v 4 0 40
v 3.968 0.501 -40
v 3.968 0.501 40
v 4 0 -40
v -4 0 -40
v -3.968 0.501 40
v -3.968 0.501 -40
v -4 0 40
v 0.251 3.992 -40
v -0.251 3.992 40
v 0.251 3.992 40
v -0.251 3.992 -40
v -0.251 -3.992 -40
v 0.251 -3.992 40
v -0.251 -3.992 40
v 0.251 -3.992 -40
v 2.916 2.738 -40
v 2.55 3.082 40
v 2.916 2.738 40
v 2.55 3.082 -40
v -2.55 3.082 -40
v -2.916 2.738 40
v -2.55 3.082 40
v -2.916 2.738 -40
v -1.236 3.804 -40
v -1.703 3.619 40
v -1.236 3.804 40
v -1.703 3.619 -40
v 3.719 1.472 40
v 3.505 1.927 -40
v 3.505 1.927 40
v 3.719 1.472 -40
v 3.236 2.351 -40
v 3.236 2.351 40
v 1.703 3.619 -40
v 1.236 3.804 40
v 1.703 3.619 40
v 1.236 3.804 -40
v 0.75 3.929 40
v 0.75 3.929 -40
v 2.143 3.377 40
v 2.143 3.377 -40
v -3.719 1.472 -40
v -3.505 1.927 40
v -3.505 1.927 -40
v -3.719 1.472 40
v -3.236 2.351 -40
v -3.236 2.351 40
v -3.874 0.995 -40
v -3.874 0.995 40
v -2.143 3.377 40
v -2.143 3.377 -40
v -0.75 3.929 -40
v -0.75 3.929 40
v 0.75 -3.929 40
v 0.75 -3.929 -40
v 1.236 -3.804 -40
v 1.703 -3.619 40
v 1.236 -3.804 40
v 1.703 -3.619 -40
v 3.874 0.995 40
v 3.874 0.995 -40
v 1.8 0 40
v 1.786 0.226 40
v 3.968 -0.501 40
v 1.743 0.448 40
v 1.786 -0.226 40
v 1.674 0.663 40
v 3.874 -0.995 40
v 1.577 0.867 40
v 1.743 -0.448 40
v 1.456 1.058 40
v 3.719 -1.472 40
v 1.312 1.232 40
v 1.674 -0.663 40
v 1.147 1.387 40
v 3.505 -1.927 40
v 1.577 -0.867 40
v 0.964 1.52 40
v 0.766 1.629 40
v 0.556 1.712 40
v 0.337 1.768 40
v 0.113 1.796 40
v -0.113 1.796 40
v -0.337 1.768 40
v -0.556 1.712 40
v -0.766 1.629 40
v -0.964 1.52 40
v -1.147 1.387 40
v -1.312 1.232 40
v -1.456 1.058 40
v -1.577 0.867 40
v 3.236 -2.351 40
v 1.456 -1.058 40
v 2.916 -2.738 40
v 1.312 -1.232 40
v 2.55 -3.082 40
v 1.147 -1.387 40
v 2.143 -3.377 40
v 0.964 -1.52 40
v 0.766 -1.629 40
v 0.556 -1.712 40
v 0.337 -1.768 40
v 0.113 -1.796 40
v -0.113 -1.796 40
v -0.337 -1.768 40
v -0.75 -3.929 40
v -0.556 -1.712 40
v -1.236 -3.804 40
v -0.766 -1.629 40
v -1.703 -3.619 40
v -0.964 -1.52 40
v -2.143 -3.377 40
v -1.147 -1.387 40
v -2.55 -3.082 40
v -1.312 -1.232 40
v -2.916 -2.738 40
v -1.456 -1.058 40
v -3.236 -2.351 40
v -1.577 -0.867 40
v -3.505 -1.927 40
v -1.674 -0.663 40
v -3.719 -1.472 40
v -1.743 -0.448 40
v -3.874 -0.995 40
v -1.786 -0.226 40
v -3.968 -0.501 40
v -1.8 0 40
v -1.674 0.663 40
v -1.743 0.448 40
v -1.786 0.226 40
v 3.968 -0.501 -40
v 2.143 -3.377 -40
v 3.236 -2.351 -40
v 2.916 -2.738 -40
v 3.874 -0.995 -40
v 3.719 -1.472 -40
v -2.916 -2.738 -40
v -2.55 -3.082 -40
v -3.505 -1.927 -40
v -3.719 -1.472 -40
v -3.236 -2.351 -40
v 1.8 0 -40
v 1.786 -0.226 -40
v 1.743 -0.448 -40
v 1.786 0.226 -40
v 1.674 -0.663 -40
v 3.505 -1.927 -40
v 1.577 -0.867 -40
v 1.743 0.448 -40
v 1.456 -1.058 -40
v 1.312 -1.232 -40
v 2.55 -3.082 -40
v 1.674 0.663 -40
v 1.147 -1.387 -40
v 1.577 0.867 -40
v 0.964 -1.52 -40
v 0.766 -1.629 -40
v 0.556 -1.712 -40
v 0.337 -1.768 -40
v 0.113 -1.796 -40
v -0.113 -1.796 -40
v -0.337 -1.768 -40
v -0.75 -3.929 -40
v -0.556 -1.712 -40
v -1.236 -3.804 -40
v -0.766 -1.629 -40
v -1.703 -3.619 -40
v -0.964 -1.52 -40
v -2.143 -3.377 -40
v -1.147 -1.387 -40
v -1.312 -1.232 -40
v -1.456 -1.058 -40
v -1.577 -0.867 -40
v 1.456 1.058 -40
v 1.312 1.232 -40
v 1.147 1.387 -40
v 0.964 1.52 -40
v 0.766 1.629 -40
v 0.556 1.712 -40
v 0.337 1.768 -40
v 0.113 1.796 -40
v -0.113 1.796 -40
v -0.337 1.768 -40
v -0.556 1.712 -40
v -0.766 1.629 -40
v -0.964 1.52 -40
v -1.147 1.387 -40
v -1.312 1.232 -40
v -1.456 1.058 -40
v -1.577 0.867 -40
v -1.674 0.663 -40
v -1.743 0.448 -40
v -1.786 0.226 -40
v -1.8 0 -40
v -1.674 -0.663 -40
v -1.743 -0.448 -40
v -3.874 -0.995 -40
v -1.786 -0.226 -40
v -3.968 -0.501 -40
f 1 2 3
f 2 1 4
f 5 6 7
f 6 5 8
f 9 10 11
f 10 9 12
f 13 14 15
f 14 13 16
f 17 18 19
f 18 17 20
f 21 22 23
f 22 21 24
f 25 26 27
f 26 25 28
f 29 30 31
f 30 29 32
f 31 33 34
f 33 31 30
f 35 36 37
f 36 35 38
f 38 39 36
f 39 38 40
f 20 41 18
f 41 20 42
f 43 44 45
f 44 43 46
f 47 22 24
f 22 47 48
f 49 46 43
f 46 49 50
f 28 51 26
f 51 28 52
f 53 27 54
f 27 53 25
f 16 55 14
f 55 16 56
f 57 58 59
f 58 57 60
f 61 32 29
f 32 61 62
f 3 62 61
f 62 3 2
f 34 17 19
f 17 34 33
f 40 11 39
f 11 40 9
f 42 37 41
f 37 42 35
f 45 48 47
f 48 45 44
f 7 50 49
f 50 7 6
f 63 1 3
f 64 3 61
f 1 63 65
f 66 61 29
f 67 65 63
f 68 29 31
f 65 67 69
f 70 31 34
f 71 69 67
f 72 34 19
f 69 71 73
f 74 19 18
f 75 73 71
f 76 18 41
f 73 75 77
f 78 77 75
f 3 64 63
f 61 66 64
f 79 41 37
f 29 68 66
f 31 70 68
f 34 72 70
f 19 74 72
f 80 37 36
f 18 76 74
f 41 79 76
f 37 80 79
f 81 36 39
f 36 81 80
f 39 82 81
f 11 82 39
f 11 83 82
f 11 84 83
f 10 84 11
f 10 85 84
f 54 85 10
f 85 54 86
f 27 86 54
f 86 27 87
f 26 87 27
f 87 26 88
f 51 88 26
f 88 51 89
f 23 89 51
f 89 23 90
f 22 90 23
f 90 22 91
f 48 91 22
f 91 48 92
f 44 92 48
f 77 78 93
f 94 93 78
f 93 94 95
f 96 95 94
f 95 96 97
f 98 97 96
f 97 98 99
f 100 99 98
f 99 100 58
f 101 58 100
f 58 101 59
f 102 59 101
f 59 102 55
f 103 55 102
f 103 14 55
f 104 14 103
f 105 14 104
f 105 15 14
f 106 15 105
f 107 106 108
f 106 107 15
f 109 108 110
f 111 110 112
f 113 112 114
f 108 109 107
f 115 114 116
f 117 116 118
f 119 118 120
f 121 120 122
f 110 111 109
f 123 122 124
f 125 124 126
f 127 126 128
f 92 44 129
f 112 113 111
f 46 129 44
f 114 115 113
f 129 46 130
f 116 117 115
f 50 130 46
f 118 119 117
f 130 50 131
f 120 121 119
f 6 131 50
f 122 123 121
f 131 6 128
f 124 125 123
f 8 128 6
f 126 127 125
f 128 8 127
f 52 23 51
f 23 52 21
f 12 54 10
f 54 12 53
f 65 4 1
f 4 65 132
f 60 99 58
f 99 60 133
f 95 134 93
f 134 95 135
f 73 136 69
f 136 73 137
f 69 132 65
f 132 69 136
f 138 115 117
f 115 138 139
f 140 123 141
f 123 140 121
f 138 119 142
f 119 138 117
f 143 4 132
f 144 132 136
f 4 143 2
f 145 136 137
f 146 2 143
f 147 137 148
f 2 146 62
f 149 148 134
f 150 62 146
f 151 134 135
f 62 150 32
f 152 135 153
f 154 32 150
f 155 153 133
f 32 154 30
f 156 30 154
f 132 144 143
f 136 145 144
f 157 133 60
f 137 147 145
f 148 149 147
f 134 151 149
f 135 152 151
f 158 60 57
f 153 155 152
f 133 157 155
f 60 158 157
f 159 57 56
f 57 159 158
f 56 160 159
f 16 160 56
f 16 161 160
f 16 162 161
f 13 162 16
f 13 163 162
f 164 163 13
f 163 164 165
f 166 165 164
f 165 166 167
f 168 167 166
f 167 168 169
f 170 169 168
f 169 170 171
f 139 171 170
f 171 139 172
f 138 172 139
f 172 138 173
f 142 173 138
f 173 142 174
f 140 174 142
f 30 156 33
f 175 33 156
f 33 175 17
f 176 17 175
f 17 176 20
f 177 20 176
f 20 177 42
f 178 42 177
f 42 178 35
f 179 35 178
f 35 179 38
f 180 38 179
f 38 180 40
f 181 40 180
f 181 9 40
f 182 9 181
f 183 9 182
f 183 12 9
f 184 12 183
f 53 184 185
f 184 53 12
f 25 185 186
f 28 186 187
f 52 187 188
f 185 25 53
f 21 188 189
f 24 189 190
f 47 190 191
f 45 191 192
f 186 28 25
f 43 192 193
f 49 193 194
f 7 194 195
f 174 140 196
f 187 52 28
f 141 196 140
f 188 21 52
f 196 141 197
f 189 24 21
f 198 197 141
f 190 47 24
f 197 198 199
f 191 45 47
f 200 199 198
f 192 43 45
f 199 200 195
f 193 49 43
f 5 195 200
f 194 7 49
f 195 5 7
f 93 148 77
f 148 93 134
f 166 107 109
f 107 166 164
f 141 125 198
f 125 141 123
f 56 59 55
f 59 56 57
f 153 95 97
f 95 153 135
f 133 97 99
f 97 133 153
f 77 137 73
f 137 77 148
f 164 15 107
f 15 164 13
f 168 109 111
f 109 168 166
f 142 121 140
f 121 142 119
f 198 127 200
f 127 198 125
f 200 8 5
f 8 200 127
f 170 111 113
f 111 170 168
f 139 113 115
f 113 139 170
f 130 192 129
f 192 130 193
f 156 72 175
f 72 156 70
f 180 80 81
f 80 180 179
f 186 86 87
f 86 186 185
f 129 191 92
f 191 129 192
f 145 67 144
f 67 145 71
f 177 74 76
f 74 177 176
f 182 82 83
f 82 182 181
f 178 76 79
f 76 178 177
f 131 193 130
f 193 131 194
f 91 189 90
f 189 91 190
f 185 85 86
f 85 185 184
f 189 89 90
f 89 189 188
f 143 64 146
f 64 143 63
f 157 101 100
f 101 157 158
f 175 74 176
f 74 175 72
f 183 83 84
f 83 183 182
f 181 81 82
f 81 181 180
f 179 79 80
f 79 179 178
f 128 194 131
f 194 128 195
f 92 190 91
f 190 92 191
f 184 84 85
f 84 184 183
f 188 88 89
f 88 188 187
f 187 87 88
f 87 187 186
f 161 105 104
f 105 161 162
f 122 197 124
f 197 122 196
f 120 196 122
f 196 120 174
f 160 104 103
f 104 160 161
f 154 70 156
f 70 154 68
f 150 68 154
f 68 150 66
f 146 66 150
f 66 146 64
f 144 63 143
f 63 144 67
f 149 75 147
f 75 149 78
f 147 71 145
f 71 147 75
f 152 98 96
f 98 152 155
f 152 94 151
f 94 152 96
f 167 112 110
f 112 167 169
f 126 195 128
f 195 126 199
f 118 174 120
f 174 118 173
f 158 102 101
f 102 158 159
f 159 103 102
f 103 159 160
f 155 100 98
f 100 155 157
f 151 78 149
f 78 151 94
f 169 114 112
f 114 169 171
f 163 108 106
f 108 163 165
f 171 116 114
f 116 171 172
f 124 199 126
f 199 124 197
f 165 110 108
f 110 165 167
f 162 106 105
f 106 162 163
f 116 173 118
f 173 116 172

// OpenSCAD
$fn = 50;


difference() {
	union() {
		translate(v = [0, 0, -40.0000000000]) {
			cylinder(h = 80, r = 4.0000000000);
		}
	}
	union() {
		translate(v = [0, 0, -100.0000000000]) {
			cylinder(h = 200, r = 1.8000000000);
		}
	}
}
